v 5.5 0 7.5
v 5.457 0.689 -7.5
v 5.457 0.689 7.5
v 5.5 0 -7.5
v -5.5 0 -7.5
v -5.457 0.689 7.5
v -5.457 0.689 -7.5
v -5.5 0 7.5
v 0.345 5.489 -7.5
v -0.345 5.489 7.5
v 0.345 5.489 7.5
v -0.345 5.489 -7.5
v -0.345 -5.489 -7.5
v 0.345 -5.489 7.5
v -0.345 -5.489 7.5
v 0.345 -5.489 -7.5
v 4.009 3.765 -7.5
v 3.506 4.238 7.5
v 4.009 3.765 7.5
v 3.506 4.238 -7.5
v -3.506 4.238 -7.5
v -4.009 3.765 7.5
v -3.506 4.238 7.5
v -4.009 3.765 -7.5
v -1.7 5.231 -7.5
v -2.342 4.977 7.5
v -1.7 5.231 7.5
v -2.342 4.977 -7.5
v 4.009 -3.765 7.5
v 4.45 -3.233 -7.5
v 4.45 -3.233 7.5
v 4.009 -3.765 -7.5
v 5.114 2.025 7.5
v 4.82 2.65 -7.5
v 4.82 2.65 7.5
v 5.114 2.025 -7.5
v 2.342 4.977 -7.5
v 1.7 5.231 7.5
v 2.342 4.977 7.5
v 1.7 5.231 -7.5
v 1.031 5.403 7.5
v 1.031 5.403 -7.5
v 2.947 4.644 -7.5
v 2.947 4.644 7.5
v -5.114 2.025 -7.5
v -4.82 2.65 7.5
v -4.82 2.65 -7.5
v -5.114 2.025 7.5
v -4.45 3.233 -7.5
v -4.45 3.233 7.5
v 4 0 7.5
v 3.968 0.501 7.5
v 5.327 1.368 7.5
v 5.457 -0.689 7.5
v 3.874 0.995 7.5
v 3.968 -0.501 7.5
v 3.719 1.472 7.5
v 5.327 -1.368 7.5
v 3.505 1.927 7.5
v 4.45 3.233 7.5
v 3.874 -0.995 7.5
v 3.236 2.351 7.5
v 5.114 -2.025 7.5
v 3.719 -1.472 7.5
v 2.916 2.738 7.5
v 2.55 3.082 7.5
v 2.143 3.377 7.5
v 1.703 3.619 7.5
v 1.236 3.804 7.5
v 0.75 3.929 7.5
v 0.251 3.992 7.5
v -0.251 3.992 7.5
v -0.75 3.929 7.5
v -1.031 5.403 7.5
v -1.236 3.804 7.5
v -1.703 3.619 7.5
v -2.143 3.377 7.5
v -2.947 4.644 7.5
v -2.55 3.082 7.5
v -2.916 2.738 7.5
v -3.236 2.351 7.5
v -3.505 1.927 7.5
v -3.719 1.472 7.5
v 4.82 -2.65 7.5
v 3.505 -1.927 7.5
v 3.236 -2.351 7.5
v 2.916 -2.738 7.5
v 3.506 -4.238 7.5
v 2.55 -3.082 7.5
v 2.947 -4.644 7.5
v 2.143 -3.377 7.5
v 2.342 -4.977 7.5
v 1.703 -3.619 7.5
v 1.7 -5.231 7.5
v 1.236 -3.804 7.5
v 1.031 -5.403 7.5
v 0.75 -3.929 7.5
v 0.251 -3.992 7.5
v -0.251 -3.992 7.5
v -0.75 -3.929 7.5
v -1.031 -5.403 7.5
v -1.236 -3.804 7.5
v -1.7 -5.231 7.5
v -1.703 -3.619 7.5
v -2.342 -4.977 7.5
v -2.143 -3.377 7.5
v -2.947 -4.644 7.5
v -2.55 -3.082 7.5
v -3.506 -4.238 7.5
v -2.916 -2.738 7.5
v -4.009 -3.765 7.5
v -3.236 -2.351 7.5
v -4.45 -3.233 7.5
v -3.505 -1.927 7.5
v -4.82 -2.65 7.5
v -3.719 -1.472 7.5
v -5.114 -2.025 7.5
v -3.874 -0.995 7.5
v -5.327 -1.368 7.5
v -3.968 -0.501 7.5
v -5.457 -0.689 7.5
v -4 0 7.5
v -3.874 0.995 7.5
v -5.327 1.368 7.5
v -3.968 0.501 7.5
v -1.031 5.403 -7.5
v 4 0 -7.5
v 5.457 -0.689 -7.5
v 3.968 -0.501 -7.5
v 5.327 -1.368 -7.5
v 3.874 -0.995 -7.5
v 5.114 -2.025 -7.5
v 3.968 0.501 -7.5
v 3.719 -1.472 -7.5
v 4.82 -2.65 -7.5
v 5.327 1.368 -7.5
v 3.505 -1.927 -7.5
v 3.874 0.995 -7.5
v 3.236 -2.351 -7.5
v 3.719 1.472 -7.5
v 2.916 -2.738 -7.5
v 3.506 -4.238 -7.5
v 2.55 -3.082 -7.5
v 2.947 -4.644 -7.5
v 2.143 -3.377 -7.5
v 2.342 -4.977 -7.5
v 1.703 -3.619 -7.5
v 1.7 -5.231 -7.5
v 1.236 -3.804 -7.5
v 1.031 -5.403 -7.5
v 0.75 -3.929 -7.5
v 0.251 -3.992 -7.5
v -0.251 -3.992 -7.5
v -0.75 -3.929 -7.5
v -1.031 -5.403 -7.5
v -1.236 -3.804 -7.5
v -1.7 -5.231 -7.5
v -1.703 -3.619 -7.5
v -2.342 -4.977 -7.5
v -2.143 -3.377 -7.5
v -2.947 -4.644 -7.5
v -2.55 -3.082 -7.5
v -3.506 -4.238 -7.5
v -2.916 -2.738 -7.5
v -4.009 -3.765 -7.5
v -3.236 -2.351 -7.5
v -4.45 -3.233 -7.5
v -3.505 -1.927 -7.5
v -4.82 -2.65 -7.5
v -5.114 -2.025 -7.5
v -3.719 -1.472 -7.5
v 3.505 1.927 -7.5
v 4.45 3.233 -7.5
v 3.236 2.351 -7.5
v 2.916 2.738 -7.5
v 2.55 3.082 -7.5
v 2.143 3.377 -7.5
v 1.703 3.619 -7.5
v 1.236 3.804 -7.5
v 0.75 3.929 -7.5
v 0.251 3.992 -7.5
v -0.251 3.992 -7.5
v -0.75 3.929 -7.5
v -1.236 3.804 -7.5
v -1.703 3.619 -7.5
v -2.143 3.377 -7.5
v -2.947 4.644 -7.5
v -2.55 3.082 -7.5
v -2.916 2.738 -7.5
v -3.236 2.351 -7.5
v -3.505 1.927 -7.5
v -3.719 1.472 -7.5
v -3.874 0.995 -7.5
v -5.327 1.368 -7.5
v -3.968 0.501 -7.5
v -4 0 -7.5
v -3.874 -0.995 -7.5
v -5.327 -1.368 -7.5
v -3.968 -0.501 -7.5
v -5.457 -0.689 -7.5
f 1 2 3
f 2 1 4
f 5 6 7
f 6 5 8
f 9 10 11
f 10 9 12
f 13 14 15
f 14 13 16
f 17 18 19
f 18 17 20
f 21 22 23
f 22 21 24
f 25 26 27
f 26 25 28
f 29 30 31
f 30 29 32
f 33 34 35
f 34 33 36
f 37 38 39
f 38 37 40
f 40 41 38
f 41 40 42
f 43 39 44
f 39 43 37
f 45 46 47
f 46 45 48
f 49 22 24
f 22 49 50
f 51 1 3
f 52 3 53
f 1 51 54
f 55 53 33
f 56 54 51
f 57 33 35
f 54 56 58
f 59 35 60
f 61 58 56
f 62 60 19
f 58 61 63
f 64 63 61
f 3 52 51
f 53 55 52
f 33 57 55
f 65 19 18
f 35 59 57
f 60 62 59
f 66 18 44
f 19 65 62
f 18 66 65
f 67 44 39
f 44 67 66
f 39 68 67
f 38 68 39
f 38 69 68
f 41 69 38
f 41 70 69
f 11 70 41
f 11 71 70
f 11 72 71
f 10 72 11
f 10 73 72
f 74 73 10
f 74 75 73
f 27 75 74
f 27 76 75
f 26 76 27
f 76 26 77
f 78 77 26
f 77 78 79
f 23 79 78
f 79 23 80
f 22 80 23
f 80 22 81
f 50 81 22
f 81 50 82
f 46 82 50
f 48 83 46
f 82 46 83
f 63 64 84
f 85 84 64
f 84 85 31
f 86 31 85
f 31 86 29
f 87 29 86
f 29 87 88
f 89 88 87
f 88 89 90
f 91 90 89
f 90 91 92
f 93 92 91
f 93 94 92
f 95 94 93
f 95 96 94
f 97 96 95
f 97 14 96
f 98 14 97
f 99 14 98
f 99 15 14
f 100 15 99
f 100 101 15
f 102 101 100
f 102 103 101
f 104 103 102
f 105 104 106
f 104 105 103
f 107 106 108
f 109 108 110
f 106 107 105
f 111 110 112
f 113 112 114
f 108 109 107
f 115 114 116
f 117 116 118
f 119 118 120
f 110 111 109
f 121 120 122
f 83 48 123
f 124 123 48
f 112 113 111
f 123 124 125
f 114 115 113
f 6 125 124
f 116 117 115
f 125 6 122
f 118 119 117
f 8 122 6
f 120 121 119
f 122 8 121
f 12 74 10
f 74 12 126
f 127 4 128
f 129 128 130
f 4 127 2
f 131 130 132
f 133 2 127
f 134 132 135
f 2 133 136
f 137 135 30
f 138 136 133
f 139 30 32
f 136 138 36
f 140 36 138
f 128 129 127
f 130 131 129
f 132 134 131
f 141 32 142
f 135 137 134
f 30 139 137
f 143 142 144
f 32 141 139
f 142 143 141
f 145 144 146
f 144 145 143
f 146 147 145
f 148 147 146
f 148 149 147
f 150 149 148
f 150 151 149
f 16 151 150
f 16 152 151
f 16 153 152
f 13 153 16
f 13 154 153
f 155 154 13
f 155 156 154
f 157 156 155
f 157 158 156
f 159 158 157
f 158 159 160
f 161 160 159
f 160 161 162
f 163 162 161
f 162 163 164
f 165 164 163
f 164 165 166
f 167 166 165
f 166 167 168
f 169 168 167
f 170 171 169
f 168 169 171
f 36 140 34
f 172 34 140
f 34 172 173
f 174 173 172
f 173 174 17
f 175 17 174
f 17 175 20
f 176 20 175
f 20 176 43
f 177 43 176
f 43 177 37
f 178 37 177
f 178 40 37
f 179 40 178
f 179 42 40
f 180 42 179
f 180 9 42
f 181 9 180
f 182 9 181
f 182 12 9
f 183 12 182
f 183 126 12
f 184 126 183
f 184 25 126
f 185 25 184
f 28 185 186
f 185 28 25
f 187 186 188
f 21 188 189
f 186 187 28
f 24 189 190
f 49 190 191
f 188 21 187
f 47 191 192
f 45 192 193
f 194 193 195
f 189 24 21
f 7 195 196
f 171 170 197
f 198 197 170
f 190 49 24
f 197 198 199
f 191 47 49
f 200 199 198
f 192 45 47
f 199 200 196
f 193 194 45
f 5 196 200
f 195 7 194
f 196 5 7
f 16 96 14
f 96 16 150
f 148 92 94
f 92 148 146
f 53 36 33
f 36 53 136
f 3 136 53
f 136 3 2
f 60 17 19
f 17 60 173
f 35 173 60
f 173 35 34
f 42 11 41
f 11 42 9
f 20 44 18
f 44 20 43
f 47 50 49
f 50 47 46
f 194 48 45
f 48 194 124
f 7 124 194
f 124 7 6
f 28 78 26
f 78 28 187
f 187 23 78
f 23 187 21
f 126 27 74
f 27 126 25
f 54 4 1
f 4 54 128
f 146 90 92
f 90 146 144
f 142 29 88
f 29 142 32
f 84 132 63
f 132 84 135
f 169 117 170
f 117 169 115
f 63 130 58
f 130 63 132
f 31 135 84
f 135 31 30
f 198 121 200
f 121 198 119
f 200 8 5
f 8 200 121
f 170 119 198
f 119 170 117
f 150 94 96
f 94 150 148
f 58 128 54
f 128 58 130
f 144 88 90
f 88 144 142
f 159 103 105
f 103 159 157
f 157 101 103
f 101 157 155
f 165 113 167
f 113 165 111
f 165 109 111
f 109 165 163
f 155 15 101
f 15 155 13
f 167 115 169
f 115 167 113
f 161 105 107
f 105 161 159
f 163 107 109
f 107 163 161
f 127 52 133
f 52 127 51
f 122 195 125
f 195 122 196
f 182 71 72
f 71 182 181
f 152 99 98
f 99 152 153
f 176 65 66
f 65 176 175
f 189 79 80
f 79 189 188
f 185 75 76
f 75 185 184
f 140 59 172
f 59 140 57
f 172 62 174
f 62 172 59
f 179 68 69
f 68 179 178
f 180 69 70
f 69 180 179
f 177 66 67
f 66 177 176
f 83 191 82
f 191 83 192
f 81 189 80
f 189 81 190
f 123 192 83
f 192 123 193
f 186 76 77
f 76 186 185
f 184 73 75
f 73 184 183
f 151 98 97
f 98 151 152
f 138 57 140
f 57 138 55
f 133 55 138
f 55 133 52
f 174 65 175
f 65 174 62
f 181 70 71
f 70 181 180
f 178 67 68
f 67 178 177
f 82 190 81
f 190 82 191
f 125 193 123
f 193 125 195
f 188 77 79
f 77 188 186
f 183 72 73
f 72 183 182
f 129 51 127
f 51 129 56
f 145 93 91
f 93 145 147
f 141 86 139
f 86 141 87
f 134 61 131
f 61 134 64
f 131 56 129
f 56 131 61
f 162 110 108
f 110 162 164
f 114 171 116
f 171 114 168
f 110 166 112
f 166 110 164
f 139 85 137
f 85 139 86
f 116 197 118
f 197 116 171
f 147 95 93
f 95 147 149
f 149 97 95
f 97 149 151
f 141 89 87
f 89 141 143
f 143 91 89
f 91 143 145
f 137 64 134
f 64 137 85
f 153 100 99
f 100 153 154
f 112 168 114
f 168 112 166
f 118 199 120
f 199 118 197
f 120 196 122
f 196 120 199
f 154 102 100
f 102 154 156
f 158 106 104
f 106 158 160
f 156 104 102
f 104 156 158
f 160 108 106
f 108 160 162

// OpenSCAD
$fn = 50;


difference() {
	union() {
		translate(v = [0, 0, -7.5000000000]) {
			cylinder(h = 15, r = 5.5000000000);
		}
	}
	union() {
		translate(v = [0, 0, -100.0000000000]) {
			cylinder(h = 200, r = 4);
		}
	}
}
